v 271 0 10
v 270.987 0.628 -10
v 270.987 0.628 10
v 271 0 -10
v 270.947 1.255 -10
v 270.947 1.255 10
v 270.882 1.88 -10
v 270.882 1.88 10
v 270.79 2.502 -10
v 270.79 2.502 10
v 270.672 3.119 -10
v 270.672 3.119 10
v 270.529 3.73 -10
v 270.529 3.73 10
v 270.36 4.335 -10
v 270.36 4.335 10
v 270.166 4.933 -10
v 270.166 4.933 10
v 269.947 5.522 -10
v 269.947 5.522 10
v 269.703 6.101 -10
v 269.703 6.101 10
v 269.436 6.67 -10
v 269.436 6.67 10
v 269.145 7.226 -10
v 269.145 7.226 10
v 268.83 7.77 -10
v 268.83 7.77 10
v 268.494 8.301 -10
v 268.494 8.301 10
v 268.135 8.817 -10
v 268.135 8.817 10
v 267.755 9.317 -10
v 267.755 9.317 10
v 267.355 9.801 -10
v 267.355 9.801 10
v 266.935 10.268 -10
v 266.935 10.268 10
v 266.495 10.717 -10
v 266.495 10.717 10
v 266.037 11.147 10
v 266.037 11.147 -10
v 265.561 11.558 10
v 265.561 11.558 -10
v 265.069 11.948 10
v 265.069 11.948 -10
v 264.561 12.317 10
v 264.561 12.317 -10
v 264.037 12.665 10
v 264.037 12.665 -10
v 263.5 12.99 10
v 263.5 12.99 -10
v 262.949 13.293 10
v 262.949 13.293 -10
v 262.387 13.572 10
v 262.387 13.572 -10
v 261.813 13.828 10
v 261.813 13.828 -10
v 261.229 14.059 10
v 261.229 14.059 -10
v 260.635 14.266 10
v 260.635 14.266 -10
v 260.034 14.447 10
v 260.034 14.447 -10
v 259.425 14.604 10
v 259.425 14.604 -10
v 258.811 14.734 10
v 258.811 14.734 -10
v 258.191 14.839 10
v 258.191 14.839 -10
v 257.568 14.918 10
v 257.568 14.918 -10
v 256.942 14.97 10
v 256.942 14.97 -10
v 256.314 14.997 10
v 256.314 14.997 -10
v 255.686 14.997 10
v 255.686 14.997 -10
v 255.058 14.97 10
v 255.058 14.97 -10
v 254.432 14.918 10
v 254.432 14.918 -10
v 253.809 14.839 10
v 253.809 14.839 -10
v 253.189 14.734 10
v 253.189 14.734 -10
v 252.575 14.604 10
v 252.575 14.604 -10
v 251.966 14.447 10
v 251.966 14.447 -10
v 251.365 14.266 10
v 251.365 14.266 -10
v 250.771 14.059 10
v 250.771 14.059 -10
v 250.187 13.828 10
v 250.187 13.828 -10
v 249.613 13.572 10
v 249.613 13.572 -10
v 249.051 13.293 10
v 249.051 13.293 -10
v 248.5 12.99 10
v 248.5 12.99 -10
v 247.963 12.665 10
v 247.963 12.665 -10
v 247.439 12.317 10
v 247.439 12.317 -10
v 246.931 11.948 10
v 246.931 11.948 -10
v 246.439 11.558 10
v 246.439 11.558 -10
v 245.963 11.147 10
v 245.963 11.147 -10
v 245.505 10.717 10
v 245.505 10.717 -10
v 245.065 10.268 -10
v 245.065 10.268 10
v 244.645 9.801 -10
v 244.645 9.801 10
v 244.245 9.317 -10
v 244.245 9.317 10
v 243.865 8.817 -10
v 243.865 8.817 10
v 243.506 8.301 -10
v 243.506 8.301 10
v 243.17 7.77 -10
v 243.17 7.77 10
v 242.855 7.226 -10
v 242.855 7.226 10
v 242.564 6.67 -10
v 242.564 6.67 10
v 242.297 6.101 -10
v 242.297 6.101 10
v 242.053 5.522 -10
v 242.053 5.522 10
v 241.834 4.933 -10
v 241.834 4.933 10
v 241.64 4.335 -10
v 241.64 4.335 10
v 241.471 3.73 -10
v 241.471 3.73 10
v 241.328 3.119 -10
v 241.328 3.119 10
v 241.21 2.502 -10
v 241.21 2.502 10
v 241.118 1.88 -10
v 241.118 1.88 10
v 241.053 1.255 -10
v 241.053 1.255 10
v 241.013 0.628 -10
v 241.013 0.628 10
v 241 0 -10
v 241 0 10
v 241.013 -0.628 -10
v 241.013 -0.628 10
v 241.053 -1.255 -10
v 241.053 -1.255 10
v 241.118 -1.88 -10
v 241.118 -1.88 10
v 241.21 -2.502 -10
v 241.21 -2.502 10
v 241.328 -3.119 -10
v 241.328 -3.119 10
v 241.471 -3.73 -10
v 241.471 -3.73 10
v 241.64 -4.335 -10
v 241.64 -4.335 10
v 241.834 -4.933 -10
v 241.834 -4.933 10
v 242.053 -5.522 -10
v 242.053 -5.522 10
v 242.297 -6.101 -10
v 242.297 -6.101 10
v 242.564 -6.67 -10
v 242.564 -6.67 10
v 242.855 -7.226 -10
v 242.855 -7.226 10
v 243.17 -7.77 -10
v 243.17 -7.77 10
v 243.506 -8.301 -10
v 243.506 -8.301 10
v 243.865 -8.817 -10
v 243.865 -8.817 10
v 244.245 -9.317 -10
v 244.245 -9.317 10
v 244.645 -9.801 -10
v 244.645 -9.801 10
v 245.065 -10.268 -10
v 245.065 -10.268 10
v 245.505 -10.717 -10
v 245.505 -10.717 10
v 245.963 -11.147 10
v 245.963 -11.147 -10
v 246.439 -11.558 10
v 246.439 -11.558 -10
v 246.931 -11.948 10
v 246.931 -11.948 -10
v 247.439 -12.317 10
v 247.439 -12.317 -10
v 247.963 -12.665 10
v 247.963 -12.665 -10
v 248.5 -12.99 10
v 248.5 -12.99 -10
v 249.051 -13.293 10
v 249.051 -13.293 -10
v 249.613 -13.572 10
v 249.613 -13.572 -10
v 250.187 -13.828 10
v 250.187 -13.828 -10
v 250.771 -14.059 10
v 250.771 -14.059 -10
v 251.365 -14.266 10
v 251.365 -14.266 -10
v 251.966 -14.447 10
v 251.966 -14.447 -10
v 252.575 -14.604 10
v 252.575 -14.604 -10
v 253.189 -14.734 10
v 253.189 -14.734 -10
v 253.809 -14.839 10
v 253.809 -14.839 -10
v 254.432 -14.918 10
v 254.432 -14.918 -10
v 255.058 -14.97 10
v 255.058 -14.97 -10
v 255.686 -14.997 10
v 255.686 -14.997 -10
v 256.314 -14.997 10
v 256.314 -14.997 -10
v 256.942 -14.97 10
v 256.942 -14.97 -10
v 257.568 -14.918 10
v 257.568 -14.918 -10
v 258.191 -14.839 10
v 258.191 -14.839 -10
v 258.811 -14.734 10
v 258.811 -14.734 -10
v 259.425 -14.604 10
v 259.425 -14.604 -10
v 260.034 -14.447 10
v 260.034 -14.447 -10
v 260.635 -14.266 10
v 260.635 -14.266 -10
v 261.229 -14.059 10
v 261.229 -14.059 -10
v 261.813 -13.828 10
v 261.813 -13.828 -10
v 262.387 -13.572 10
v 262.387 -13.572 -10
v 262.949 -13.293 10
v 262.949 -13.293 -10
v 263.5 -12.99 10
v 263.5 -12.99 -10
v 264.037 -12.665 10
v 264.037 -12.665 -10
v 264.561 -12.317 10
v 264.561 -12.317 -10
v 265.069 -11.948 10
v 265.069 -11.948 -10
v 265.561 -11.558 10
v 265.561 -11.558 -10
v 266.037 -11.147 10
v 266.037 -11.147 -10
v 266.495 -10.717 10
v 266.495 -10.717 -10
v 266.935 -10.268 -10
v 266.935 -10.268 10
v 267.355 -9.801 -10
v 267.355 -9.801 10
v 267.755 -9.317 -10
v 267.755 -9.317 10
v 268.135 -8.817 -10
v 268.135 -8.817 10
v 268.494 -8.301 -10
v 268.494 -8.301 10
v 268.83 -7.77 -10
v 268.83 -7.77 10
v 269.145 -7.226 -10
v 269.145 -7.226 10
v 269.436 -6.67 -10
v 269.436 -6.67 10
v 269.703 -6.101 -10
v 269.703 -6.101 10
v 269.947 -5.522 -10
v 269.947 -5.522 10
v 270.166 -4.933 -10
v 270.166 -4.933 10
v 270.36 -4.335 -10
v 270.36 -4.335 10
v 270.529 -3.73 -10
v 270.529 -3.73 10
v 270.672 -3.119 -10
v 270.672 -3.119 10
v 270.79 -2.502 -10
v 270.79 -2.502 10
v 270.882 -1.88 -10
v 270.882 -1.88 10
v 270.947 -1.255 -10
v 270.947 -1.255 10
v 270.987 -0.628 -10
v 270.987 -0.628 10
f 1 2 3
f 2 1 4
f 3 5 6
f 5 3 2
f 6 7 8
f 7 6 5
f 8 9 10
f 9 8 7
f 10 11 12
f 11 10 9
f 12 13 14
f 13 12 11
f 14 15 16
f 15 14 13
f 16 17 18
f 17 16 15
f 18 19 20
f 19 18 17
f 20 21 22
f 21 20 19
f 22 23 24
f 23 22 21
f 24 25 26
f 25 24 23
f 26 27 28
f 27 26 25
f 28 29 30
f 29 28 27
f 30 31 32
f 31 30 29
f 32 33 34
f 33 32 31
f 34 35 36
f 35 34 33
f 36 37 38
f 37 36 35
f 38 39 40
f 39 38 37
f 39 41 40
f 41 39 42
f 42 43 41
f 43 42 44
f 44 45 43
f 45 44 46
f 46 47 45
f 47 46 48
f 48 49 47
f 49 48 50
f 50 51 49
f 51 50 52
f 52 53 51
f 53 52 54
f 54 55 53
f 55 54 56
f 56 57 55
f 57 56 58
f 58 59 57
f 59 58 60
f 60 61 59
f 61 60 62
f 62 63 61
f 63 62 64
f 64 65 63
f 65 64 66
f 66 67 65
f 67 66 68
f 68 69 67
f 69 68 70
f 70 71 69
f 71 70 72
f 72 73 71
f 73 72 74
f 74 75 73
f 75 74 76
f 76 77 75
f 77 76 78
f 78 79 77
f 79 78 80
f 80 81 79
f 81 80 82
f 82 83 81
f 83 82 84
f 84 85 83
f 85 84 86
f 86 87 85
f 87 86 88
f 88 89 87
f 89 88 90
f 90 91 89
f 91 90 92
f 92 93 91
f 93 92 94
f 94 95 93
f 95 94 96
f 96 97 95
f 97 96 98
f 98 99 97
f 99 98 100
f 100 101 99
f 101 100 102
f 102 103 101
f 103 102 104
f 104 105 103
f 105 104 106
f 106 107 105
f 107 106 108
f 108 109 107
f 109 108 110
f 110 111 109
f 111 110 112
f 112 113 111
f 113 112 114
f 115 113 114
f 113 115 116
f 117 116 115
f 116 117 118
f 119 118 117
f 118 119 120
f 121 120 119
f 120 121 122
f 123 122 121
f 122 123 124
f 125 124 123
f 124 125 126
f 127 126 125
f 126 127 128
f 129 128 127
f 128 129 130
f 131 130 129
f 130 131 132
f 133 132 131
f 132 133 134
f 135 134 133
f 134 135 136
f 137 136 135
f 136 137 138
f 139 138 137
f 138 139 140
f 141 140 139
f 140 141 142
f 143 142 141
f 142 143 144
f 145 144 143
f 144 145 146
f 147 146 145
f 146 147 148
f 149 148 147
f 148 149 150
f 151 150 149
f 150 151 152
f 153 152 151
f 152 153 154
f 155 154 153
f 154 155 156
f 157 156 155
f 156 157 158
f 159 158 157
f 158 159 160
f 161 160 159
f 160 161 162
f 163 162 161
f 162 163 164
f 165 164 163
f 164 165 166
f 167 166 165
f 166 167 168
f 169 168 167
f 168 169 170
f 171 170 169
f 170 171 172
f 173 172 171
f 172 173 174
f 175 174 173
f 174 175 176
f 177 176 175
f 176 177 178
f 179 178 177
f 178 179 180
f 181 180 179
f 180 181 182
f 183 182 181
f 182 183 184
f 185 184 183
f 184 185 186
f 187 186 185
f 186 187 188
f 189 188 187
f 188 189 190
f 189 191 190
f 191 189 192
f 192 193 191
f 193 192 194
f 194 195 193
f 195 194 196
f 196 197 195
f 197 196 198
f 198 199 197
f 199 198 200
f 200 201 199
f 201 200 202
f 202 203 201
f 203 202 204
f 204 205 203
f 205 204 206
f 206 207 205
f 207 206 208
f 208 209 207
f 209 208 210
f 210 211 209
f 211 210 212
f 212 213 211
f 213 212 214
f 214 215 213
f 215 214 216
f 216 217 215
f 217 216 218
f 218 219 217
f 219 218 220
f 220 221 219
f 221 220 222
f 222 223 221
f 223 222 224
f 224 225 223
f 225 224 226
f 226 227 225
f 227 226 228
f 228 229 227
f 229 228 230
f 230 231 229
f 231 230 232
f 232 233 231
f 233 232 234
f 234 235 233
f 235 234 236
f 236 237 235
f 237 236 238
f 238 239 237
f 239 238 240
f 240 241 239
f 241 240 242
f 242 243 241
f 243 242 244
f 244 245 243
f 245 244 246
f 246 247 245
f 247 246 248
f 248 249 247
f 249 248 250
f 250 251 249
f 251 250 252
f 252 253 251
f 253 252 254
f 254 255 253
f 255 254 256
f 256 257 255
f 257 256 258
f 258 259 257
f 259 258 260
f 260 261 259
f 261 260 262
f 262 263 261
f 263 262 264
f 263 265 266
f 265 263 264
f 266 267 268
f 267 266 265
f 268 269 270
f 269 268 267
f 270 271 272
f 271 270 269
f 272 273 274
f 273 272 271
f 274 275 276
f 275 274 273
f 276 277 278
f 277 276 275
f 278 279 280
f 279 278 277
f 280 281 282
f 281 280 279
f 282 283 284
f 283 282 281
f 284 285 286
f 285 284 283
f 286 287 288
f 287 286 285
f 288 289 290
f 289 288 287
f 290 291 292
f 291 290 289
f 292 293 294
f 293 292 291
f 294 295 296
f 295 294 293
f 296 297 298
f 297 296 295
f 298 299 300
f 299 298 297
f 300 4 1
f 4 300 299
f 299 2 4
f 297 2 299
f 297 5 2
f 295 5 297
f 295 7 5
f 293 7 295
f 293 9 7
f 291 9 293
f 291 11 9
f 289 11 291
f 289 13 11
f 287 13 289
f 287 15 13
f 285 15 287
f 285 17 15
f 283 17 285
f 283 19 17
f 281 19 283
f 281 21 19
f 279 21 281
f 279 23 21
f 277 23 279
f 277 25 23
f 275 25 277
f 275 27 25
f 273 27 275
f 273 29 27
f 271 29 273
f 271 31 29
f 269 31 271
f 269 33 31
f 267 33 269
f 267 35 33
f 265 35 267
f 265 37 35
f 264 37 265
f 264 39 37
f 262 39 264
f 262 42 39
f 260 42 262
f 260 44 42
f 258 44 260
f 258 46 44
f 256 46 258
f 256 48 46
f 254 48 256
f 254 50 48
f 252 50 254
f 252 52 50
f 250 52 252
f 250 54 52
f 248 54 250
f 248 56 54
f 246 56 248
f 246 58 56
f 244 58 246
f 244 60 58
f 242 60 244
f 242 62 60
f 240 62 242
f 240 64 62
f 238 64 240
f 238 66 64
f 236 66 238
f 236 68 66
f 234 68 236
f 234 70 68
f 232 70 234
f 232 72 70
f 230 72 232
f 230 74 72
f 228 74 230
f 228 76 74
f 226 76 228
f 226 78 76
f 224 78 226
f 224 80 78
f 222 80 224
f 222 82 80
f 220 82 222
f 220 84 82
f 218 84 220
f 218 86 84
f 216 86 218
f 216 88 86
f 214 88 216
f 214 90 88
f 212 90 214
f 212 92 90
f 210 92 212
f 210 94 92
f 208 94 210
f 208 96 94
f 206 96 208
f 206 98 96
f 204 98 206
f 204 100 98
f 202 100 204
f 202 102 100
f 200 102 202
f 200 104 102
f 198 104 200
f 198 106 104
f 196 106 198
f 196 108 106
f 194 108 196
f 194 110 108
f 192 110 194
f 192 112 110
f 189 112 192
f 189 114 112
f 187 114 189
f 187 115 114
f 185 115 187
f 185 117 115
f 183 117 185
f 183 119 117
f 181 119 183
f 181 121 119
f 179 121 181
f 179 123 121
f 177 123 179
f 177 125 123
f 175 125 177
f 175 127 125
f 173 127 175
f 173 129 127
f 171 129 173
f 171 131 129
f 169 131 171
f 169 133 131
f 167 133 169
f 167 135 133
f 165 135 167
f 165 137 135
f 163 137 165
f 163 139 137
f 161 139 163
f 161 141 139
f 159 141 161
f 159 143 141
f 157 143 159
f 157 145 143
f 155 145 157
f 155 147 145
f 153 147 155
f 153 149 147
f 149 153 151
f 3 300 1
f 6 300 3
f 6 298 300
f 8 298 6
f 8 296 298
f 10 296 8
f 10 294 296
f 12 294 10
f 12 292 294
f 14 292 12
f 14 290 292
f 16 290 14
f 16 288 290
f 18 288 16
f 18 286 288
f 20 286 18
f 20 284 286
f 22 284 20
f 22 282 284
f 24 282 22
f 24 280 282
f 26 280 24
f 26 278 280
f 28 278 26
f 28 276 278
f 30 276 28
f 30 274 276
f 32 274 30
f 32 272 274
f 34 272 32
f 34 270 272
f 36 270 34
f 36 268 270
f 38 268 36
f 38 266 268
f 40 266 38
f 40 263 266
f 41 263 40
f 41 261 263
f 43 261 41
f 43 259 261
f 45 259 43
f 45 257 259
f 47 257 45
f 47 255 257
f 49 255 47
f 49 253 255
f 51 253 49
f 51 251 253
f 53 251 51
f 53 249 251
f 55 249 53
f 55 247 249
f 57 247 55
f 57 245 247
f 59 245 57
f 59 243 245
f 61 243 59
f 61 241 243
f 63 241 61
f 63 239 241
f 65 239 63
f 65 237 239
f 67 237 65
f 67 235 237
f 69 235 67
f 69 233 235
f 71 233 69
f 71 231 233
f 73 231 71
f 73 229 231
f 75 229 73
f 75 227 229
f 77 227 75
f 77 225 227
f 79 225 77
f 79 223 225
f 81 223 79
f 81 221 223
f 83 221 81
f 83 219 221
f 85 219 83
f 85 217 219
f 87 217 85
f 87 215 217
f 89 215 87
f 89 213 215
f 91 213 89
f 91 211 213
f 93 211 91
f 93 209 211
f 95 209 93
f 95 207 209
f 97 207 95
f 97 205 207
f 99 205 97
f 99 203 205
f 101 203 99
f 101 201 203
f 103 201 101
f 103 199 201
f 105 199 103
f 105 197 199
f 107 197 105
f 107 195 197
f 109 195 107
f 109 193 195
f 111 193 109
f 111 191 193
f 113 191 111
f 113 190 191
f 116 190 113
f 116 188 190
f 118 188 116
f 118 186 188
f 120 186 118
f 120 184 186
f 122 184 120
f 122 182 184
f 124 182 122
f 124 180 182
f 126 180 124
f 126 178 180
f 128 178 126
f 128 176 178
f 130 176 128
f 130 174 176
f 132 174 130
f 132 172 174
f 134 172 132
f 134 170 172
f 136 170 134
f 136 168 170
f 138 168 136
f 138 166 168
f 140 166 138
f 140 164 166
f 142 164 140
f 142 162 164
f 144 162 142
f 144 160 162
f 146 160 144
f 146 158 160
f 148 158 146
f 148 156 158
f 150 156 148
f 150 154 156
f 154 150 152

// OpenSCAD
$fn = 150;

translate([256, 0, 0])
rotate([0, 0, 0])
cylinder(20, 15, 15, true);
